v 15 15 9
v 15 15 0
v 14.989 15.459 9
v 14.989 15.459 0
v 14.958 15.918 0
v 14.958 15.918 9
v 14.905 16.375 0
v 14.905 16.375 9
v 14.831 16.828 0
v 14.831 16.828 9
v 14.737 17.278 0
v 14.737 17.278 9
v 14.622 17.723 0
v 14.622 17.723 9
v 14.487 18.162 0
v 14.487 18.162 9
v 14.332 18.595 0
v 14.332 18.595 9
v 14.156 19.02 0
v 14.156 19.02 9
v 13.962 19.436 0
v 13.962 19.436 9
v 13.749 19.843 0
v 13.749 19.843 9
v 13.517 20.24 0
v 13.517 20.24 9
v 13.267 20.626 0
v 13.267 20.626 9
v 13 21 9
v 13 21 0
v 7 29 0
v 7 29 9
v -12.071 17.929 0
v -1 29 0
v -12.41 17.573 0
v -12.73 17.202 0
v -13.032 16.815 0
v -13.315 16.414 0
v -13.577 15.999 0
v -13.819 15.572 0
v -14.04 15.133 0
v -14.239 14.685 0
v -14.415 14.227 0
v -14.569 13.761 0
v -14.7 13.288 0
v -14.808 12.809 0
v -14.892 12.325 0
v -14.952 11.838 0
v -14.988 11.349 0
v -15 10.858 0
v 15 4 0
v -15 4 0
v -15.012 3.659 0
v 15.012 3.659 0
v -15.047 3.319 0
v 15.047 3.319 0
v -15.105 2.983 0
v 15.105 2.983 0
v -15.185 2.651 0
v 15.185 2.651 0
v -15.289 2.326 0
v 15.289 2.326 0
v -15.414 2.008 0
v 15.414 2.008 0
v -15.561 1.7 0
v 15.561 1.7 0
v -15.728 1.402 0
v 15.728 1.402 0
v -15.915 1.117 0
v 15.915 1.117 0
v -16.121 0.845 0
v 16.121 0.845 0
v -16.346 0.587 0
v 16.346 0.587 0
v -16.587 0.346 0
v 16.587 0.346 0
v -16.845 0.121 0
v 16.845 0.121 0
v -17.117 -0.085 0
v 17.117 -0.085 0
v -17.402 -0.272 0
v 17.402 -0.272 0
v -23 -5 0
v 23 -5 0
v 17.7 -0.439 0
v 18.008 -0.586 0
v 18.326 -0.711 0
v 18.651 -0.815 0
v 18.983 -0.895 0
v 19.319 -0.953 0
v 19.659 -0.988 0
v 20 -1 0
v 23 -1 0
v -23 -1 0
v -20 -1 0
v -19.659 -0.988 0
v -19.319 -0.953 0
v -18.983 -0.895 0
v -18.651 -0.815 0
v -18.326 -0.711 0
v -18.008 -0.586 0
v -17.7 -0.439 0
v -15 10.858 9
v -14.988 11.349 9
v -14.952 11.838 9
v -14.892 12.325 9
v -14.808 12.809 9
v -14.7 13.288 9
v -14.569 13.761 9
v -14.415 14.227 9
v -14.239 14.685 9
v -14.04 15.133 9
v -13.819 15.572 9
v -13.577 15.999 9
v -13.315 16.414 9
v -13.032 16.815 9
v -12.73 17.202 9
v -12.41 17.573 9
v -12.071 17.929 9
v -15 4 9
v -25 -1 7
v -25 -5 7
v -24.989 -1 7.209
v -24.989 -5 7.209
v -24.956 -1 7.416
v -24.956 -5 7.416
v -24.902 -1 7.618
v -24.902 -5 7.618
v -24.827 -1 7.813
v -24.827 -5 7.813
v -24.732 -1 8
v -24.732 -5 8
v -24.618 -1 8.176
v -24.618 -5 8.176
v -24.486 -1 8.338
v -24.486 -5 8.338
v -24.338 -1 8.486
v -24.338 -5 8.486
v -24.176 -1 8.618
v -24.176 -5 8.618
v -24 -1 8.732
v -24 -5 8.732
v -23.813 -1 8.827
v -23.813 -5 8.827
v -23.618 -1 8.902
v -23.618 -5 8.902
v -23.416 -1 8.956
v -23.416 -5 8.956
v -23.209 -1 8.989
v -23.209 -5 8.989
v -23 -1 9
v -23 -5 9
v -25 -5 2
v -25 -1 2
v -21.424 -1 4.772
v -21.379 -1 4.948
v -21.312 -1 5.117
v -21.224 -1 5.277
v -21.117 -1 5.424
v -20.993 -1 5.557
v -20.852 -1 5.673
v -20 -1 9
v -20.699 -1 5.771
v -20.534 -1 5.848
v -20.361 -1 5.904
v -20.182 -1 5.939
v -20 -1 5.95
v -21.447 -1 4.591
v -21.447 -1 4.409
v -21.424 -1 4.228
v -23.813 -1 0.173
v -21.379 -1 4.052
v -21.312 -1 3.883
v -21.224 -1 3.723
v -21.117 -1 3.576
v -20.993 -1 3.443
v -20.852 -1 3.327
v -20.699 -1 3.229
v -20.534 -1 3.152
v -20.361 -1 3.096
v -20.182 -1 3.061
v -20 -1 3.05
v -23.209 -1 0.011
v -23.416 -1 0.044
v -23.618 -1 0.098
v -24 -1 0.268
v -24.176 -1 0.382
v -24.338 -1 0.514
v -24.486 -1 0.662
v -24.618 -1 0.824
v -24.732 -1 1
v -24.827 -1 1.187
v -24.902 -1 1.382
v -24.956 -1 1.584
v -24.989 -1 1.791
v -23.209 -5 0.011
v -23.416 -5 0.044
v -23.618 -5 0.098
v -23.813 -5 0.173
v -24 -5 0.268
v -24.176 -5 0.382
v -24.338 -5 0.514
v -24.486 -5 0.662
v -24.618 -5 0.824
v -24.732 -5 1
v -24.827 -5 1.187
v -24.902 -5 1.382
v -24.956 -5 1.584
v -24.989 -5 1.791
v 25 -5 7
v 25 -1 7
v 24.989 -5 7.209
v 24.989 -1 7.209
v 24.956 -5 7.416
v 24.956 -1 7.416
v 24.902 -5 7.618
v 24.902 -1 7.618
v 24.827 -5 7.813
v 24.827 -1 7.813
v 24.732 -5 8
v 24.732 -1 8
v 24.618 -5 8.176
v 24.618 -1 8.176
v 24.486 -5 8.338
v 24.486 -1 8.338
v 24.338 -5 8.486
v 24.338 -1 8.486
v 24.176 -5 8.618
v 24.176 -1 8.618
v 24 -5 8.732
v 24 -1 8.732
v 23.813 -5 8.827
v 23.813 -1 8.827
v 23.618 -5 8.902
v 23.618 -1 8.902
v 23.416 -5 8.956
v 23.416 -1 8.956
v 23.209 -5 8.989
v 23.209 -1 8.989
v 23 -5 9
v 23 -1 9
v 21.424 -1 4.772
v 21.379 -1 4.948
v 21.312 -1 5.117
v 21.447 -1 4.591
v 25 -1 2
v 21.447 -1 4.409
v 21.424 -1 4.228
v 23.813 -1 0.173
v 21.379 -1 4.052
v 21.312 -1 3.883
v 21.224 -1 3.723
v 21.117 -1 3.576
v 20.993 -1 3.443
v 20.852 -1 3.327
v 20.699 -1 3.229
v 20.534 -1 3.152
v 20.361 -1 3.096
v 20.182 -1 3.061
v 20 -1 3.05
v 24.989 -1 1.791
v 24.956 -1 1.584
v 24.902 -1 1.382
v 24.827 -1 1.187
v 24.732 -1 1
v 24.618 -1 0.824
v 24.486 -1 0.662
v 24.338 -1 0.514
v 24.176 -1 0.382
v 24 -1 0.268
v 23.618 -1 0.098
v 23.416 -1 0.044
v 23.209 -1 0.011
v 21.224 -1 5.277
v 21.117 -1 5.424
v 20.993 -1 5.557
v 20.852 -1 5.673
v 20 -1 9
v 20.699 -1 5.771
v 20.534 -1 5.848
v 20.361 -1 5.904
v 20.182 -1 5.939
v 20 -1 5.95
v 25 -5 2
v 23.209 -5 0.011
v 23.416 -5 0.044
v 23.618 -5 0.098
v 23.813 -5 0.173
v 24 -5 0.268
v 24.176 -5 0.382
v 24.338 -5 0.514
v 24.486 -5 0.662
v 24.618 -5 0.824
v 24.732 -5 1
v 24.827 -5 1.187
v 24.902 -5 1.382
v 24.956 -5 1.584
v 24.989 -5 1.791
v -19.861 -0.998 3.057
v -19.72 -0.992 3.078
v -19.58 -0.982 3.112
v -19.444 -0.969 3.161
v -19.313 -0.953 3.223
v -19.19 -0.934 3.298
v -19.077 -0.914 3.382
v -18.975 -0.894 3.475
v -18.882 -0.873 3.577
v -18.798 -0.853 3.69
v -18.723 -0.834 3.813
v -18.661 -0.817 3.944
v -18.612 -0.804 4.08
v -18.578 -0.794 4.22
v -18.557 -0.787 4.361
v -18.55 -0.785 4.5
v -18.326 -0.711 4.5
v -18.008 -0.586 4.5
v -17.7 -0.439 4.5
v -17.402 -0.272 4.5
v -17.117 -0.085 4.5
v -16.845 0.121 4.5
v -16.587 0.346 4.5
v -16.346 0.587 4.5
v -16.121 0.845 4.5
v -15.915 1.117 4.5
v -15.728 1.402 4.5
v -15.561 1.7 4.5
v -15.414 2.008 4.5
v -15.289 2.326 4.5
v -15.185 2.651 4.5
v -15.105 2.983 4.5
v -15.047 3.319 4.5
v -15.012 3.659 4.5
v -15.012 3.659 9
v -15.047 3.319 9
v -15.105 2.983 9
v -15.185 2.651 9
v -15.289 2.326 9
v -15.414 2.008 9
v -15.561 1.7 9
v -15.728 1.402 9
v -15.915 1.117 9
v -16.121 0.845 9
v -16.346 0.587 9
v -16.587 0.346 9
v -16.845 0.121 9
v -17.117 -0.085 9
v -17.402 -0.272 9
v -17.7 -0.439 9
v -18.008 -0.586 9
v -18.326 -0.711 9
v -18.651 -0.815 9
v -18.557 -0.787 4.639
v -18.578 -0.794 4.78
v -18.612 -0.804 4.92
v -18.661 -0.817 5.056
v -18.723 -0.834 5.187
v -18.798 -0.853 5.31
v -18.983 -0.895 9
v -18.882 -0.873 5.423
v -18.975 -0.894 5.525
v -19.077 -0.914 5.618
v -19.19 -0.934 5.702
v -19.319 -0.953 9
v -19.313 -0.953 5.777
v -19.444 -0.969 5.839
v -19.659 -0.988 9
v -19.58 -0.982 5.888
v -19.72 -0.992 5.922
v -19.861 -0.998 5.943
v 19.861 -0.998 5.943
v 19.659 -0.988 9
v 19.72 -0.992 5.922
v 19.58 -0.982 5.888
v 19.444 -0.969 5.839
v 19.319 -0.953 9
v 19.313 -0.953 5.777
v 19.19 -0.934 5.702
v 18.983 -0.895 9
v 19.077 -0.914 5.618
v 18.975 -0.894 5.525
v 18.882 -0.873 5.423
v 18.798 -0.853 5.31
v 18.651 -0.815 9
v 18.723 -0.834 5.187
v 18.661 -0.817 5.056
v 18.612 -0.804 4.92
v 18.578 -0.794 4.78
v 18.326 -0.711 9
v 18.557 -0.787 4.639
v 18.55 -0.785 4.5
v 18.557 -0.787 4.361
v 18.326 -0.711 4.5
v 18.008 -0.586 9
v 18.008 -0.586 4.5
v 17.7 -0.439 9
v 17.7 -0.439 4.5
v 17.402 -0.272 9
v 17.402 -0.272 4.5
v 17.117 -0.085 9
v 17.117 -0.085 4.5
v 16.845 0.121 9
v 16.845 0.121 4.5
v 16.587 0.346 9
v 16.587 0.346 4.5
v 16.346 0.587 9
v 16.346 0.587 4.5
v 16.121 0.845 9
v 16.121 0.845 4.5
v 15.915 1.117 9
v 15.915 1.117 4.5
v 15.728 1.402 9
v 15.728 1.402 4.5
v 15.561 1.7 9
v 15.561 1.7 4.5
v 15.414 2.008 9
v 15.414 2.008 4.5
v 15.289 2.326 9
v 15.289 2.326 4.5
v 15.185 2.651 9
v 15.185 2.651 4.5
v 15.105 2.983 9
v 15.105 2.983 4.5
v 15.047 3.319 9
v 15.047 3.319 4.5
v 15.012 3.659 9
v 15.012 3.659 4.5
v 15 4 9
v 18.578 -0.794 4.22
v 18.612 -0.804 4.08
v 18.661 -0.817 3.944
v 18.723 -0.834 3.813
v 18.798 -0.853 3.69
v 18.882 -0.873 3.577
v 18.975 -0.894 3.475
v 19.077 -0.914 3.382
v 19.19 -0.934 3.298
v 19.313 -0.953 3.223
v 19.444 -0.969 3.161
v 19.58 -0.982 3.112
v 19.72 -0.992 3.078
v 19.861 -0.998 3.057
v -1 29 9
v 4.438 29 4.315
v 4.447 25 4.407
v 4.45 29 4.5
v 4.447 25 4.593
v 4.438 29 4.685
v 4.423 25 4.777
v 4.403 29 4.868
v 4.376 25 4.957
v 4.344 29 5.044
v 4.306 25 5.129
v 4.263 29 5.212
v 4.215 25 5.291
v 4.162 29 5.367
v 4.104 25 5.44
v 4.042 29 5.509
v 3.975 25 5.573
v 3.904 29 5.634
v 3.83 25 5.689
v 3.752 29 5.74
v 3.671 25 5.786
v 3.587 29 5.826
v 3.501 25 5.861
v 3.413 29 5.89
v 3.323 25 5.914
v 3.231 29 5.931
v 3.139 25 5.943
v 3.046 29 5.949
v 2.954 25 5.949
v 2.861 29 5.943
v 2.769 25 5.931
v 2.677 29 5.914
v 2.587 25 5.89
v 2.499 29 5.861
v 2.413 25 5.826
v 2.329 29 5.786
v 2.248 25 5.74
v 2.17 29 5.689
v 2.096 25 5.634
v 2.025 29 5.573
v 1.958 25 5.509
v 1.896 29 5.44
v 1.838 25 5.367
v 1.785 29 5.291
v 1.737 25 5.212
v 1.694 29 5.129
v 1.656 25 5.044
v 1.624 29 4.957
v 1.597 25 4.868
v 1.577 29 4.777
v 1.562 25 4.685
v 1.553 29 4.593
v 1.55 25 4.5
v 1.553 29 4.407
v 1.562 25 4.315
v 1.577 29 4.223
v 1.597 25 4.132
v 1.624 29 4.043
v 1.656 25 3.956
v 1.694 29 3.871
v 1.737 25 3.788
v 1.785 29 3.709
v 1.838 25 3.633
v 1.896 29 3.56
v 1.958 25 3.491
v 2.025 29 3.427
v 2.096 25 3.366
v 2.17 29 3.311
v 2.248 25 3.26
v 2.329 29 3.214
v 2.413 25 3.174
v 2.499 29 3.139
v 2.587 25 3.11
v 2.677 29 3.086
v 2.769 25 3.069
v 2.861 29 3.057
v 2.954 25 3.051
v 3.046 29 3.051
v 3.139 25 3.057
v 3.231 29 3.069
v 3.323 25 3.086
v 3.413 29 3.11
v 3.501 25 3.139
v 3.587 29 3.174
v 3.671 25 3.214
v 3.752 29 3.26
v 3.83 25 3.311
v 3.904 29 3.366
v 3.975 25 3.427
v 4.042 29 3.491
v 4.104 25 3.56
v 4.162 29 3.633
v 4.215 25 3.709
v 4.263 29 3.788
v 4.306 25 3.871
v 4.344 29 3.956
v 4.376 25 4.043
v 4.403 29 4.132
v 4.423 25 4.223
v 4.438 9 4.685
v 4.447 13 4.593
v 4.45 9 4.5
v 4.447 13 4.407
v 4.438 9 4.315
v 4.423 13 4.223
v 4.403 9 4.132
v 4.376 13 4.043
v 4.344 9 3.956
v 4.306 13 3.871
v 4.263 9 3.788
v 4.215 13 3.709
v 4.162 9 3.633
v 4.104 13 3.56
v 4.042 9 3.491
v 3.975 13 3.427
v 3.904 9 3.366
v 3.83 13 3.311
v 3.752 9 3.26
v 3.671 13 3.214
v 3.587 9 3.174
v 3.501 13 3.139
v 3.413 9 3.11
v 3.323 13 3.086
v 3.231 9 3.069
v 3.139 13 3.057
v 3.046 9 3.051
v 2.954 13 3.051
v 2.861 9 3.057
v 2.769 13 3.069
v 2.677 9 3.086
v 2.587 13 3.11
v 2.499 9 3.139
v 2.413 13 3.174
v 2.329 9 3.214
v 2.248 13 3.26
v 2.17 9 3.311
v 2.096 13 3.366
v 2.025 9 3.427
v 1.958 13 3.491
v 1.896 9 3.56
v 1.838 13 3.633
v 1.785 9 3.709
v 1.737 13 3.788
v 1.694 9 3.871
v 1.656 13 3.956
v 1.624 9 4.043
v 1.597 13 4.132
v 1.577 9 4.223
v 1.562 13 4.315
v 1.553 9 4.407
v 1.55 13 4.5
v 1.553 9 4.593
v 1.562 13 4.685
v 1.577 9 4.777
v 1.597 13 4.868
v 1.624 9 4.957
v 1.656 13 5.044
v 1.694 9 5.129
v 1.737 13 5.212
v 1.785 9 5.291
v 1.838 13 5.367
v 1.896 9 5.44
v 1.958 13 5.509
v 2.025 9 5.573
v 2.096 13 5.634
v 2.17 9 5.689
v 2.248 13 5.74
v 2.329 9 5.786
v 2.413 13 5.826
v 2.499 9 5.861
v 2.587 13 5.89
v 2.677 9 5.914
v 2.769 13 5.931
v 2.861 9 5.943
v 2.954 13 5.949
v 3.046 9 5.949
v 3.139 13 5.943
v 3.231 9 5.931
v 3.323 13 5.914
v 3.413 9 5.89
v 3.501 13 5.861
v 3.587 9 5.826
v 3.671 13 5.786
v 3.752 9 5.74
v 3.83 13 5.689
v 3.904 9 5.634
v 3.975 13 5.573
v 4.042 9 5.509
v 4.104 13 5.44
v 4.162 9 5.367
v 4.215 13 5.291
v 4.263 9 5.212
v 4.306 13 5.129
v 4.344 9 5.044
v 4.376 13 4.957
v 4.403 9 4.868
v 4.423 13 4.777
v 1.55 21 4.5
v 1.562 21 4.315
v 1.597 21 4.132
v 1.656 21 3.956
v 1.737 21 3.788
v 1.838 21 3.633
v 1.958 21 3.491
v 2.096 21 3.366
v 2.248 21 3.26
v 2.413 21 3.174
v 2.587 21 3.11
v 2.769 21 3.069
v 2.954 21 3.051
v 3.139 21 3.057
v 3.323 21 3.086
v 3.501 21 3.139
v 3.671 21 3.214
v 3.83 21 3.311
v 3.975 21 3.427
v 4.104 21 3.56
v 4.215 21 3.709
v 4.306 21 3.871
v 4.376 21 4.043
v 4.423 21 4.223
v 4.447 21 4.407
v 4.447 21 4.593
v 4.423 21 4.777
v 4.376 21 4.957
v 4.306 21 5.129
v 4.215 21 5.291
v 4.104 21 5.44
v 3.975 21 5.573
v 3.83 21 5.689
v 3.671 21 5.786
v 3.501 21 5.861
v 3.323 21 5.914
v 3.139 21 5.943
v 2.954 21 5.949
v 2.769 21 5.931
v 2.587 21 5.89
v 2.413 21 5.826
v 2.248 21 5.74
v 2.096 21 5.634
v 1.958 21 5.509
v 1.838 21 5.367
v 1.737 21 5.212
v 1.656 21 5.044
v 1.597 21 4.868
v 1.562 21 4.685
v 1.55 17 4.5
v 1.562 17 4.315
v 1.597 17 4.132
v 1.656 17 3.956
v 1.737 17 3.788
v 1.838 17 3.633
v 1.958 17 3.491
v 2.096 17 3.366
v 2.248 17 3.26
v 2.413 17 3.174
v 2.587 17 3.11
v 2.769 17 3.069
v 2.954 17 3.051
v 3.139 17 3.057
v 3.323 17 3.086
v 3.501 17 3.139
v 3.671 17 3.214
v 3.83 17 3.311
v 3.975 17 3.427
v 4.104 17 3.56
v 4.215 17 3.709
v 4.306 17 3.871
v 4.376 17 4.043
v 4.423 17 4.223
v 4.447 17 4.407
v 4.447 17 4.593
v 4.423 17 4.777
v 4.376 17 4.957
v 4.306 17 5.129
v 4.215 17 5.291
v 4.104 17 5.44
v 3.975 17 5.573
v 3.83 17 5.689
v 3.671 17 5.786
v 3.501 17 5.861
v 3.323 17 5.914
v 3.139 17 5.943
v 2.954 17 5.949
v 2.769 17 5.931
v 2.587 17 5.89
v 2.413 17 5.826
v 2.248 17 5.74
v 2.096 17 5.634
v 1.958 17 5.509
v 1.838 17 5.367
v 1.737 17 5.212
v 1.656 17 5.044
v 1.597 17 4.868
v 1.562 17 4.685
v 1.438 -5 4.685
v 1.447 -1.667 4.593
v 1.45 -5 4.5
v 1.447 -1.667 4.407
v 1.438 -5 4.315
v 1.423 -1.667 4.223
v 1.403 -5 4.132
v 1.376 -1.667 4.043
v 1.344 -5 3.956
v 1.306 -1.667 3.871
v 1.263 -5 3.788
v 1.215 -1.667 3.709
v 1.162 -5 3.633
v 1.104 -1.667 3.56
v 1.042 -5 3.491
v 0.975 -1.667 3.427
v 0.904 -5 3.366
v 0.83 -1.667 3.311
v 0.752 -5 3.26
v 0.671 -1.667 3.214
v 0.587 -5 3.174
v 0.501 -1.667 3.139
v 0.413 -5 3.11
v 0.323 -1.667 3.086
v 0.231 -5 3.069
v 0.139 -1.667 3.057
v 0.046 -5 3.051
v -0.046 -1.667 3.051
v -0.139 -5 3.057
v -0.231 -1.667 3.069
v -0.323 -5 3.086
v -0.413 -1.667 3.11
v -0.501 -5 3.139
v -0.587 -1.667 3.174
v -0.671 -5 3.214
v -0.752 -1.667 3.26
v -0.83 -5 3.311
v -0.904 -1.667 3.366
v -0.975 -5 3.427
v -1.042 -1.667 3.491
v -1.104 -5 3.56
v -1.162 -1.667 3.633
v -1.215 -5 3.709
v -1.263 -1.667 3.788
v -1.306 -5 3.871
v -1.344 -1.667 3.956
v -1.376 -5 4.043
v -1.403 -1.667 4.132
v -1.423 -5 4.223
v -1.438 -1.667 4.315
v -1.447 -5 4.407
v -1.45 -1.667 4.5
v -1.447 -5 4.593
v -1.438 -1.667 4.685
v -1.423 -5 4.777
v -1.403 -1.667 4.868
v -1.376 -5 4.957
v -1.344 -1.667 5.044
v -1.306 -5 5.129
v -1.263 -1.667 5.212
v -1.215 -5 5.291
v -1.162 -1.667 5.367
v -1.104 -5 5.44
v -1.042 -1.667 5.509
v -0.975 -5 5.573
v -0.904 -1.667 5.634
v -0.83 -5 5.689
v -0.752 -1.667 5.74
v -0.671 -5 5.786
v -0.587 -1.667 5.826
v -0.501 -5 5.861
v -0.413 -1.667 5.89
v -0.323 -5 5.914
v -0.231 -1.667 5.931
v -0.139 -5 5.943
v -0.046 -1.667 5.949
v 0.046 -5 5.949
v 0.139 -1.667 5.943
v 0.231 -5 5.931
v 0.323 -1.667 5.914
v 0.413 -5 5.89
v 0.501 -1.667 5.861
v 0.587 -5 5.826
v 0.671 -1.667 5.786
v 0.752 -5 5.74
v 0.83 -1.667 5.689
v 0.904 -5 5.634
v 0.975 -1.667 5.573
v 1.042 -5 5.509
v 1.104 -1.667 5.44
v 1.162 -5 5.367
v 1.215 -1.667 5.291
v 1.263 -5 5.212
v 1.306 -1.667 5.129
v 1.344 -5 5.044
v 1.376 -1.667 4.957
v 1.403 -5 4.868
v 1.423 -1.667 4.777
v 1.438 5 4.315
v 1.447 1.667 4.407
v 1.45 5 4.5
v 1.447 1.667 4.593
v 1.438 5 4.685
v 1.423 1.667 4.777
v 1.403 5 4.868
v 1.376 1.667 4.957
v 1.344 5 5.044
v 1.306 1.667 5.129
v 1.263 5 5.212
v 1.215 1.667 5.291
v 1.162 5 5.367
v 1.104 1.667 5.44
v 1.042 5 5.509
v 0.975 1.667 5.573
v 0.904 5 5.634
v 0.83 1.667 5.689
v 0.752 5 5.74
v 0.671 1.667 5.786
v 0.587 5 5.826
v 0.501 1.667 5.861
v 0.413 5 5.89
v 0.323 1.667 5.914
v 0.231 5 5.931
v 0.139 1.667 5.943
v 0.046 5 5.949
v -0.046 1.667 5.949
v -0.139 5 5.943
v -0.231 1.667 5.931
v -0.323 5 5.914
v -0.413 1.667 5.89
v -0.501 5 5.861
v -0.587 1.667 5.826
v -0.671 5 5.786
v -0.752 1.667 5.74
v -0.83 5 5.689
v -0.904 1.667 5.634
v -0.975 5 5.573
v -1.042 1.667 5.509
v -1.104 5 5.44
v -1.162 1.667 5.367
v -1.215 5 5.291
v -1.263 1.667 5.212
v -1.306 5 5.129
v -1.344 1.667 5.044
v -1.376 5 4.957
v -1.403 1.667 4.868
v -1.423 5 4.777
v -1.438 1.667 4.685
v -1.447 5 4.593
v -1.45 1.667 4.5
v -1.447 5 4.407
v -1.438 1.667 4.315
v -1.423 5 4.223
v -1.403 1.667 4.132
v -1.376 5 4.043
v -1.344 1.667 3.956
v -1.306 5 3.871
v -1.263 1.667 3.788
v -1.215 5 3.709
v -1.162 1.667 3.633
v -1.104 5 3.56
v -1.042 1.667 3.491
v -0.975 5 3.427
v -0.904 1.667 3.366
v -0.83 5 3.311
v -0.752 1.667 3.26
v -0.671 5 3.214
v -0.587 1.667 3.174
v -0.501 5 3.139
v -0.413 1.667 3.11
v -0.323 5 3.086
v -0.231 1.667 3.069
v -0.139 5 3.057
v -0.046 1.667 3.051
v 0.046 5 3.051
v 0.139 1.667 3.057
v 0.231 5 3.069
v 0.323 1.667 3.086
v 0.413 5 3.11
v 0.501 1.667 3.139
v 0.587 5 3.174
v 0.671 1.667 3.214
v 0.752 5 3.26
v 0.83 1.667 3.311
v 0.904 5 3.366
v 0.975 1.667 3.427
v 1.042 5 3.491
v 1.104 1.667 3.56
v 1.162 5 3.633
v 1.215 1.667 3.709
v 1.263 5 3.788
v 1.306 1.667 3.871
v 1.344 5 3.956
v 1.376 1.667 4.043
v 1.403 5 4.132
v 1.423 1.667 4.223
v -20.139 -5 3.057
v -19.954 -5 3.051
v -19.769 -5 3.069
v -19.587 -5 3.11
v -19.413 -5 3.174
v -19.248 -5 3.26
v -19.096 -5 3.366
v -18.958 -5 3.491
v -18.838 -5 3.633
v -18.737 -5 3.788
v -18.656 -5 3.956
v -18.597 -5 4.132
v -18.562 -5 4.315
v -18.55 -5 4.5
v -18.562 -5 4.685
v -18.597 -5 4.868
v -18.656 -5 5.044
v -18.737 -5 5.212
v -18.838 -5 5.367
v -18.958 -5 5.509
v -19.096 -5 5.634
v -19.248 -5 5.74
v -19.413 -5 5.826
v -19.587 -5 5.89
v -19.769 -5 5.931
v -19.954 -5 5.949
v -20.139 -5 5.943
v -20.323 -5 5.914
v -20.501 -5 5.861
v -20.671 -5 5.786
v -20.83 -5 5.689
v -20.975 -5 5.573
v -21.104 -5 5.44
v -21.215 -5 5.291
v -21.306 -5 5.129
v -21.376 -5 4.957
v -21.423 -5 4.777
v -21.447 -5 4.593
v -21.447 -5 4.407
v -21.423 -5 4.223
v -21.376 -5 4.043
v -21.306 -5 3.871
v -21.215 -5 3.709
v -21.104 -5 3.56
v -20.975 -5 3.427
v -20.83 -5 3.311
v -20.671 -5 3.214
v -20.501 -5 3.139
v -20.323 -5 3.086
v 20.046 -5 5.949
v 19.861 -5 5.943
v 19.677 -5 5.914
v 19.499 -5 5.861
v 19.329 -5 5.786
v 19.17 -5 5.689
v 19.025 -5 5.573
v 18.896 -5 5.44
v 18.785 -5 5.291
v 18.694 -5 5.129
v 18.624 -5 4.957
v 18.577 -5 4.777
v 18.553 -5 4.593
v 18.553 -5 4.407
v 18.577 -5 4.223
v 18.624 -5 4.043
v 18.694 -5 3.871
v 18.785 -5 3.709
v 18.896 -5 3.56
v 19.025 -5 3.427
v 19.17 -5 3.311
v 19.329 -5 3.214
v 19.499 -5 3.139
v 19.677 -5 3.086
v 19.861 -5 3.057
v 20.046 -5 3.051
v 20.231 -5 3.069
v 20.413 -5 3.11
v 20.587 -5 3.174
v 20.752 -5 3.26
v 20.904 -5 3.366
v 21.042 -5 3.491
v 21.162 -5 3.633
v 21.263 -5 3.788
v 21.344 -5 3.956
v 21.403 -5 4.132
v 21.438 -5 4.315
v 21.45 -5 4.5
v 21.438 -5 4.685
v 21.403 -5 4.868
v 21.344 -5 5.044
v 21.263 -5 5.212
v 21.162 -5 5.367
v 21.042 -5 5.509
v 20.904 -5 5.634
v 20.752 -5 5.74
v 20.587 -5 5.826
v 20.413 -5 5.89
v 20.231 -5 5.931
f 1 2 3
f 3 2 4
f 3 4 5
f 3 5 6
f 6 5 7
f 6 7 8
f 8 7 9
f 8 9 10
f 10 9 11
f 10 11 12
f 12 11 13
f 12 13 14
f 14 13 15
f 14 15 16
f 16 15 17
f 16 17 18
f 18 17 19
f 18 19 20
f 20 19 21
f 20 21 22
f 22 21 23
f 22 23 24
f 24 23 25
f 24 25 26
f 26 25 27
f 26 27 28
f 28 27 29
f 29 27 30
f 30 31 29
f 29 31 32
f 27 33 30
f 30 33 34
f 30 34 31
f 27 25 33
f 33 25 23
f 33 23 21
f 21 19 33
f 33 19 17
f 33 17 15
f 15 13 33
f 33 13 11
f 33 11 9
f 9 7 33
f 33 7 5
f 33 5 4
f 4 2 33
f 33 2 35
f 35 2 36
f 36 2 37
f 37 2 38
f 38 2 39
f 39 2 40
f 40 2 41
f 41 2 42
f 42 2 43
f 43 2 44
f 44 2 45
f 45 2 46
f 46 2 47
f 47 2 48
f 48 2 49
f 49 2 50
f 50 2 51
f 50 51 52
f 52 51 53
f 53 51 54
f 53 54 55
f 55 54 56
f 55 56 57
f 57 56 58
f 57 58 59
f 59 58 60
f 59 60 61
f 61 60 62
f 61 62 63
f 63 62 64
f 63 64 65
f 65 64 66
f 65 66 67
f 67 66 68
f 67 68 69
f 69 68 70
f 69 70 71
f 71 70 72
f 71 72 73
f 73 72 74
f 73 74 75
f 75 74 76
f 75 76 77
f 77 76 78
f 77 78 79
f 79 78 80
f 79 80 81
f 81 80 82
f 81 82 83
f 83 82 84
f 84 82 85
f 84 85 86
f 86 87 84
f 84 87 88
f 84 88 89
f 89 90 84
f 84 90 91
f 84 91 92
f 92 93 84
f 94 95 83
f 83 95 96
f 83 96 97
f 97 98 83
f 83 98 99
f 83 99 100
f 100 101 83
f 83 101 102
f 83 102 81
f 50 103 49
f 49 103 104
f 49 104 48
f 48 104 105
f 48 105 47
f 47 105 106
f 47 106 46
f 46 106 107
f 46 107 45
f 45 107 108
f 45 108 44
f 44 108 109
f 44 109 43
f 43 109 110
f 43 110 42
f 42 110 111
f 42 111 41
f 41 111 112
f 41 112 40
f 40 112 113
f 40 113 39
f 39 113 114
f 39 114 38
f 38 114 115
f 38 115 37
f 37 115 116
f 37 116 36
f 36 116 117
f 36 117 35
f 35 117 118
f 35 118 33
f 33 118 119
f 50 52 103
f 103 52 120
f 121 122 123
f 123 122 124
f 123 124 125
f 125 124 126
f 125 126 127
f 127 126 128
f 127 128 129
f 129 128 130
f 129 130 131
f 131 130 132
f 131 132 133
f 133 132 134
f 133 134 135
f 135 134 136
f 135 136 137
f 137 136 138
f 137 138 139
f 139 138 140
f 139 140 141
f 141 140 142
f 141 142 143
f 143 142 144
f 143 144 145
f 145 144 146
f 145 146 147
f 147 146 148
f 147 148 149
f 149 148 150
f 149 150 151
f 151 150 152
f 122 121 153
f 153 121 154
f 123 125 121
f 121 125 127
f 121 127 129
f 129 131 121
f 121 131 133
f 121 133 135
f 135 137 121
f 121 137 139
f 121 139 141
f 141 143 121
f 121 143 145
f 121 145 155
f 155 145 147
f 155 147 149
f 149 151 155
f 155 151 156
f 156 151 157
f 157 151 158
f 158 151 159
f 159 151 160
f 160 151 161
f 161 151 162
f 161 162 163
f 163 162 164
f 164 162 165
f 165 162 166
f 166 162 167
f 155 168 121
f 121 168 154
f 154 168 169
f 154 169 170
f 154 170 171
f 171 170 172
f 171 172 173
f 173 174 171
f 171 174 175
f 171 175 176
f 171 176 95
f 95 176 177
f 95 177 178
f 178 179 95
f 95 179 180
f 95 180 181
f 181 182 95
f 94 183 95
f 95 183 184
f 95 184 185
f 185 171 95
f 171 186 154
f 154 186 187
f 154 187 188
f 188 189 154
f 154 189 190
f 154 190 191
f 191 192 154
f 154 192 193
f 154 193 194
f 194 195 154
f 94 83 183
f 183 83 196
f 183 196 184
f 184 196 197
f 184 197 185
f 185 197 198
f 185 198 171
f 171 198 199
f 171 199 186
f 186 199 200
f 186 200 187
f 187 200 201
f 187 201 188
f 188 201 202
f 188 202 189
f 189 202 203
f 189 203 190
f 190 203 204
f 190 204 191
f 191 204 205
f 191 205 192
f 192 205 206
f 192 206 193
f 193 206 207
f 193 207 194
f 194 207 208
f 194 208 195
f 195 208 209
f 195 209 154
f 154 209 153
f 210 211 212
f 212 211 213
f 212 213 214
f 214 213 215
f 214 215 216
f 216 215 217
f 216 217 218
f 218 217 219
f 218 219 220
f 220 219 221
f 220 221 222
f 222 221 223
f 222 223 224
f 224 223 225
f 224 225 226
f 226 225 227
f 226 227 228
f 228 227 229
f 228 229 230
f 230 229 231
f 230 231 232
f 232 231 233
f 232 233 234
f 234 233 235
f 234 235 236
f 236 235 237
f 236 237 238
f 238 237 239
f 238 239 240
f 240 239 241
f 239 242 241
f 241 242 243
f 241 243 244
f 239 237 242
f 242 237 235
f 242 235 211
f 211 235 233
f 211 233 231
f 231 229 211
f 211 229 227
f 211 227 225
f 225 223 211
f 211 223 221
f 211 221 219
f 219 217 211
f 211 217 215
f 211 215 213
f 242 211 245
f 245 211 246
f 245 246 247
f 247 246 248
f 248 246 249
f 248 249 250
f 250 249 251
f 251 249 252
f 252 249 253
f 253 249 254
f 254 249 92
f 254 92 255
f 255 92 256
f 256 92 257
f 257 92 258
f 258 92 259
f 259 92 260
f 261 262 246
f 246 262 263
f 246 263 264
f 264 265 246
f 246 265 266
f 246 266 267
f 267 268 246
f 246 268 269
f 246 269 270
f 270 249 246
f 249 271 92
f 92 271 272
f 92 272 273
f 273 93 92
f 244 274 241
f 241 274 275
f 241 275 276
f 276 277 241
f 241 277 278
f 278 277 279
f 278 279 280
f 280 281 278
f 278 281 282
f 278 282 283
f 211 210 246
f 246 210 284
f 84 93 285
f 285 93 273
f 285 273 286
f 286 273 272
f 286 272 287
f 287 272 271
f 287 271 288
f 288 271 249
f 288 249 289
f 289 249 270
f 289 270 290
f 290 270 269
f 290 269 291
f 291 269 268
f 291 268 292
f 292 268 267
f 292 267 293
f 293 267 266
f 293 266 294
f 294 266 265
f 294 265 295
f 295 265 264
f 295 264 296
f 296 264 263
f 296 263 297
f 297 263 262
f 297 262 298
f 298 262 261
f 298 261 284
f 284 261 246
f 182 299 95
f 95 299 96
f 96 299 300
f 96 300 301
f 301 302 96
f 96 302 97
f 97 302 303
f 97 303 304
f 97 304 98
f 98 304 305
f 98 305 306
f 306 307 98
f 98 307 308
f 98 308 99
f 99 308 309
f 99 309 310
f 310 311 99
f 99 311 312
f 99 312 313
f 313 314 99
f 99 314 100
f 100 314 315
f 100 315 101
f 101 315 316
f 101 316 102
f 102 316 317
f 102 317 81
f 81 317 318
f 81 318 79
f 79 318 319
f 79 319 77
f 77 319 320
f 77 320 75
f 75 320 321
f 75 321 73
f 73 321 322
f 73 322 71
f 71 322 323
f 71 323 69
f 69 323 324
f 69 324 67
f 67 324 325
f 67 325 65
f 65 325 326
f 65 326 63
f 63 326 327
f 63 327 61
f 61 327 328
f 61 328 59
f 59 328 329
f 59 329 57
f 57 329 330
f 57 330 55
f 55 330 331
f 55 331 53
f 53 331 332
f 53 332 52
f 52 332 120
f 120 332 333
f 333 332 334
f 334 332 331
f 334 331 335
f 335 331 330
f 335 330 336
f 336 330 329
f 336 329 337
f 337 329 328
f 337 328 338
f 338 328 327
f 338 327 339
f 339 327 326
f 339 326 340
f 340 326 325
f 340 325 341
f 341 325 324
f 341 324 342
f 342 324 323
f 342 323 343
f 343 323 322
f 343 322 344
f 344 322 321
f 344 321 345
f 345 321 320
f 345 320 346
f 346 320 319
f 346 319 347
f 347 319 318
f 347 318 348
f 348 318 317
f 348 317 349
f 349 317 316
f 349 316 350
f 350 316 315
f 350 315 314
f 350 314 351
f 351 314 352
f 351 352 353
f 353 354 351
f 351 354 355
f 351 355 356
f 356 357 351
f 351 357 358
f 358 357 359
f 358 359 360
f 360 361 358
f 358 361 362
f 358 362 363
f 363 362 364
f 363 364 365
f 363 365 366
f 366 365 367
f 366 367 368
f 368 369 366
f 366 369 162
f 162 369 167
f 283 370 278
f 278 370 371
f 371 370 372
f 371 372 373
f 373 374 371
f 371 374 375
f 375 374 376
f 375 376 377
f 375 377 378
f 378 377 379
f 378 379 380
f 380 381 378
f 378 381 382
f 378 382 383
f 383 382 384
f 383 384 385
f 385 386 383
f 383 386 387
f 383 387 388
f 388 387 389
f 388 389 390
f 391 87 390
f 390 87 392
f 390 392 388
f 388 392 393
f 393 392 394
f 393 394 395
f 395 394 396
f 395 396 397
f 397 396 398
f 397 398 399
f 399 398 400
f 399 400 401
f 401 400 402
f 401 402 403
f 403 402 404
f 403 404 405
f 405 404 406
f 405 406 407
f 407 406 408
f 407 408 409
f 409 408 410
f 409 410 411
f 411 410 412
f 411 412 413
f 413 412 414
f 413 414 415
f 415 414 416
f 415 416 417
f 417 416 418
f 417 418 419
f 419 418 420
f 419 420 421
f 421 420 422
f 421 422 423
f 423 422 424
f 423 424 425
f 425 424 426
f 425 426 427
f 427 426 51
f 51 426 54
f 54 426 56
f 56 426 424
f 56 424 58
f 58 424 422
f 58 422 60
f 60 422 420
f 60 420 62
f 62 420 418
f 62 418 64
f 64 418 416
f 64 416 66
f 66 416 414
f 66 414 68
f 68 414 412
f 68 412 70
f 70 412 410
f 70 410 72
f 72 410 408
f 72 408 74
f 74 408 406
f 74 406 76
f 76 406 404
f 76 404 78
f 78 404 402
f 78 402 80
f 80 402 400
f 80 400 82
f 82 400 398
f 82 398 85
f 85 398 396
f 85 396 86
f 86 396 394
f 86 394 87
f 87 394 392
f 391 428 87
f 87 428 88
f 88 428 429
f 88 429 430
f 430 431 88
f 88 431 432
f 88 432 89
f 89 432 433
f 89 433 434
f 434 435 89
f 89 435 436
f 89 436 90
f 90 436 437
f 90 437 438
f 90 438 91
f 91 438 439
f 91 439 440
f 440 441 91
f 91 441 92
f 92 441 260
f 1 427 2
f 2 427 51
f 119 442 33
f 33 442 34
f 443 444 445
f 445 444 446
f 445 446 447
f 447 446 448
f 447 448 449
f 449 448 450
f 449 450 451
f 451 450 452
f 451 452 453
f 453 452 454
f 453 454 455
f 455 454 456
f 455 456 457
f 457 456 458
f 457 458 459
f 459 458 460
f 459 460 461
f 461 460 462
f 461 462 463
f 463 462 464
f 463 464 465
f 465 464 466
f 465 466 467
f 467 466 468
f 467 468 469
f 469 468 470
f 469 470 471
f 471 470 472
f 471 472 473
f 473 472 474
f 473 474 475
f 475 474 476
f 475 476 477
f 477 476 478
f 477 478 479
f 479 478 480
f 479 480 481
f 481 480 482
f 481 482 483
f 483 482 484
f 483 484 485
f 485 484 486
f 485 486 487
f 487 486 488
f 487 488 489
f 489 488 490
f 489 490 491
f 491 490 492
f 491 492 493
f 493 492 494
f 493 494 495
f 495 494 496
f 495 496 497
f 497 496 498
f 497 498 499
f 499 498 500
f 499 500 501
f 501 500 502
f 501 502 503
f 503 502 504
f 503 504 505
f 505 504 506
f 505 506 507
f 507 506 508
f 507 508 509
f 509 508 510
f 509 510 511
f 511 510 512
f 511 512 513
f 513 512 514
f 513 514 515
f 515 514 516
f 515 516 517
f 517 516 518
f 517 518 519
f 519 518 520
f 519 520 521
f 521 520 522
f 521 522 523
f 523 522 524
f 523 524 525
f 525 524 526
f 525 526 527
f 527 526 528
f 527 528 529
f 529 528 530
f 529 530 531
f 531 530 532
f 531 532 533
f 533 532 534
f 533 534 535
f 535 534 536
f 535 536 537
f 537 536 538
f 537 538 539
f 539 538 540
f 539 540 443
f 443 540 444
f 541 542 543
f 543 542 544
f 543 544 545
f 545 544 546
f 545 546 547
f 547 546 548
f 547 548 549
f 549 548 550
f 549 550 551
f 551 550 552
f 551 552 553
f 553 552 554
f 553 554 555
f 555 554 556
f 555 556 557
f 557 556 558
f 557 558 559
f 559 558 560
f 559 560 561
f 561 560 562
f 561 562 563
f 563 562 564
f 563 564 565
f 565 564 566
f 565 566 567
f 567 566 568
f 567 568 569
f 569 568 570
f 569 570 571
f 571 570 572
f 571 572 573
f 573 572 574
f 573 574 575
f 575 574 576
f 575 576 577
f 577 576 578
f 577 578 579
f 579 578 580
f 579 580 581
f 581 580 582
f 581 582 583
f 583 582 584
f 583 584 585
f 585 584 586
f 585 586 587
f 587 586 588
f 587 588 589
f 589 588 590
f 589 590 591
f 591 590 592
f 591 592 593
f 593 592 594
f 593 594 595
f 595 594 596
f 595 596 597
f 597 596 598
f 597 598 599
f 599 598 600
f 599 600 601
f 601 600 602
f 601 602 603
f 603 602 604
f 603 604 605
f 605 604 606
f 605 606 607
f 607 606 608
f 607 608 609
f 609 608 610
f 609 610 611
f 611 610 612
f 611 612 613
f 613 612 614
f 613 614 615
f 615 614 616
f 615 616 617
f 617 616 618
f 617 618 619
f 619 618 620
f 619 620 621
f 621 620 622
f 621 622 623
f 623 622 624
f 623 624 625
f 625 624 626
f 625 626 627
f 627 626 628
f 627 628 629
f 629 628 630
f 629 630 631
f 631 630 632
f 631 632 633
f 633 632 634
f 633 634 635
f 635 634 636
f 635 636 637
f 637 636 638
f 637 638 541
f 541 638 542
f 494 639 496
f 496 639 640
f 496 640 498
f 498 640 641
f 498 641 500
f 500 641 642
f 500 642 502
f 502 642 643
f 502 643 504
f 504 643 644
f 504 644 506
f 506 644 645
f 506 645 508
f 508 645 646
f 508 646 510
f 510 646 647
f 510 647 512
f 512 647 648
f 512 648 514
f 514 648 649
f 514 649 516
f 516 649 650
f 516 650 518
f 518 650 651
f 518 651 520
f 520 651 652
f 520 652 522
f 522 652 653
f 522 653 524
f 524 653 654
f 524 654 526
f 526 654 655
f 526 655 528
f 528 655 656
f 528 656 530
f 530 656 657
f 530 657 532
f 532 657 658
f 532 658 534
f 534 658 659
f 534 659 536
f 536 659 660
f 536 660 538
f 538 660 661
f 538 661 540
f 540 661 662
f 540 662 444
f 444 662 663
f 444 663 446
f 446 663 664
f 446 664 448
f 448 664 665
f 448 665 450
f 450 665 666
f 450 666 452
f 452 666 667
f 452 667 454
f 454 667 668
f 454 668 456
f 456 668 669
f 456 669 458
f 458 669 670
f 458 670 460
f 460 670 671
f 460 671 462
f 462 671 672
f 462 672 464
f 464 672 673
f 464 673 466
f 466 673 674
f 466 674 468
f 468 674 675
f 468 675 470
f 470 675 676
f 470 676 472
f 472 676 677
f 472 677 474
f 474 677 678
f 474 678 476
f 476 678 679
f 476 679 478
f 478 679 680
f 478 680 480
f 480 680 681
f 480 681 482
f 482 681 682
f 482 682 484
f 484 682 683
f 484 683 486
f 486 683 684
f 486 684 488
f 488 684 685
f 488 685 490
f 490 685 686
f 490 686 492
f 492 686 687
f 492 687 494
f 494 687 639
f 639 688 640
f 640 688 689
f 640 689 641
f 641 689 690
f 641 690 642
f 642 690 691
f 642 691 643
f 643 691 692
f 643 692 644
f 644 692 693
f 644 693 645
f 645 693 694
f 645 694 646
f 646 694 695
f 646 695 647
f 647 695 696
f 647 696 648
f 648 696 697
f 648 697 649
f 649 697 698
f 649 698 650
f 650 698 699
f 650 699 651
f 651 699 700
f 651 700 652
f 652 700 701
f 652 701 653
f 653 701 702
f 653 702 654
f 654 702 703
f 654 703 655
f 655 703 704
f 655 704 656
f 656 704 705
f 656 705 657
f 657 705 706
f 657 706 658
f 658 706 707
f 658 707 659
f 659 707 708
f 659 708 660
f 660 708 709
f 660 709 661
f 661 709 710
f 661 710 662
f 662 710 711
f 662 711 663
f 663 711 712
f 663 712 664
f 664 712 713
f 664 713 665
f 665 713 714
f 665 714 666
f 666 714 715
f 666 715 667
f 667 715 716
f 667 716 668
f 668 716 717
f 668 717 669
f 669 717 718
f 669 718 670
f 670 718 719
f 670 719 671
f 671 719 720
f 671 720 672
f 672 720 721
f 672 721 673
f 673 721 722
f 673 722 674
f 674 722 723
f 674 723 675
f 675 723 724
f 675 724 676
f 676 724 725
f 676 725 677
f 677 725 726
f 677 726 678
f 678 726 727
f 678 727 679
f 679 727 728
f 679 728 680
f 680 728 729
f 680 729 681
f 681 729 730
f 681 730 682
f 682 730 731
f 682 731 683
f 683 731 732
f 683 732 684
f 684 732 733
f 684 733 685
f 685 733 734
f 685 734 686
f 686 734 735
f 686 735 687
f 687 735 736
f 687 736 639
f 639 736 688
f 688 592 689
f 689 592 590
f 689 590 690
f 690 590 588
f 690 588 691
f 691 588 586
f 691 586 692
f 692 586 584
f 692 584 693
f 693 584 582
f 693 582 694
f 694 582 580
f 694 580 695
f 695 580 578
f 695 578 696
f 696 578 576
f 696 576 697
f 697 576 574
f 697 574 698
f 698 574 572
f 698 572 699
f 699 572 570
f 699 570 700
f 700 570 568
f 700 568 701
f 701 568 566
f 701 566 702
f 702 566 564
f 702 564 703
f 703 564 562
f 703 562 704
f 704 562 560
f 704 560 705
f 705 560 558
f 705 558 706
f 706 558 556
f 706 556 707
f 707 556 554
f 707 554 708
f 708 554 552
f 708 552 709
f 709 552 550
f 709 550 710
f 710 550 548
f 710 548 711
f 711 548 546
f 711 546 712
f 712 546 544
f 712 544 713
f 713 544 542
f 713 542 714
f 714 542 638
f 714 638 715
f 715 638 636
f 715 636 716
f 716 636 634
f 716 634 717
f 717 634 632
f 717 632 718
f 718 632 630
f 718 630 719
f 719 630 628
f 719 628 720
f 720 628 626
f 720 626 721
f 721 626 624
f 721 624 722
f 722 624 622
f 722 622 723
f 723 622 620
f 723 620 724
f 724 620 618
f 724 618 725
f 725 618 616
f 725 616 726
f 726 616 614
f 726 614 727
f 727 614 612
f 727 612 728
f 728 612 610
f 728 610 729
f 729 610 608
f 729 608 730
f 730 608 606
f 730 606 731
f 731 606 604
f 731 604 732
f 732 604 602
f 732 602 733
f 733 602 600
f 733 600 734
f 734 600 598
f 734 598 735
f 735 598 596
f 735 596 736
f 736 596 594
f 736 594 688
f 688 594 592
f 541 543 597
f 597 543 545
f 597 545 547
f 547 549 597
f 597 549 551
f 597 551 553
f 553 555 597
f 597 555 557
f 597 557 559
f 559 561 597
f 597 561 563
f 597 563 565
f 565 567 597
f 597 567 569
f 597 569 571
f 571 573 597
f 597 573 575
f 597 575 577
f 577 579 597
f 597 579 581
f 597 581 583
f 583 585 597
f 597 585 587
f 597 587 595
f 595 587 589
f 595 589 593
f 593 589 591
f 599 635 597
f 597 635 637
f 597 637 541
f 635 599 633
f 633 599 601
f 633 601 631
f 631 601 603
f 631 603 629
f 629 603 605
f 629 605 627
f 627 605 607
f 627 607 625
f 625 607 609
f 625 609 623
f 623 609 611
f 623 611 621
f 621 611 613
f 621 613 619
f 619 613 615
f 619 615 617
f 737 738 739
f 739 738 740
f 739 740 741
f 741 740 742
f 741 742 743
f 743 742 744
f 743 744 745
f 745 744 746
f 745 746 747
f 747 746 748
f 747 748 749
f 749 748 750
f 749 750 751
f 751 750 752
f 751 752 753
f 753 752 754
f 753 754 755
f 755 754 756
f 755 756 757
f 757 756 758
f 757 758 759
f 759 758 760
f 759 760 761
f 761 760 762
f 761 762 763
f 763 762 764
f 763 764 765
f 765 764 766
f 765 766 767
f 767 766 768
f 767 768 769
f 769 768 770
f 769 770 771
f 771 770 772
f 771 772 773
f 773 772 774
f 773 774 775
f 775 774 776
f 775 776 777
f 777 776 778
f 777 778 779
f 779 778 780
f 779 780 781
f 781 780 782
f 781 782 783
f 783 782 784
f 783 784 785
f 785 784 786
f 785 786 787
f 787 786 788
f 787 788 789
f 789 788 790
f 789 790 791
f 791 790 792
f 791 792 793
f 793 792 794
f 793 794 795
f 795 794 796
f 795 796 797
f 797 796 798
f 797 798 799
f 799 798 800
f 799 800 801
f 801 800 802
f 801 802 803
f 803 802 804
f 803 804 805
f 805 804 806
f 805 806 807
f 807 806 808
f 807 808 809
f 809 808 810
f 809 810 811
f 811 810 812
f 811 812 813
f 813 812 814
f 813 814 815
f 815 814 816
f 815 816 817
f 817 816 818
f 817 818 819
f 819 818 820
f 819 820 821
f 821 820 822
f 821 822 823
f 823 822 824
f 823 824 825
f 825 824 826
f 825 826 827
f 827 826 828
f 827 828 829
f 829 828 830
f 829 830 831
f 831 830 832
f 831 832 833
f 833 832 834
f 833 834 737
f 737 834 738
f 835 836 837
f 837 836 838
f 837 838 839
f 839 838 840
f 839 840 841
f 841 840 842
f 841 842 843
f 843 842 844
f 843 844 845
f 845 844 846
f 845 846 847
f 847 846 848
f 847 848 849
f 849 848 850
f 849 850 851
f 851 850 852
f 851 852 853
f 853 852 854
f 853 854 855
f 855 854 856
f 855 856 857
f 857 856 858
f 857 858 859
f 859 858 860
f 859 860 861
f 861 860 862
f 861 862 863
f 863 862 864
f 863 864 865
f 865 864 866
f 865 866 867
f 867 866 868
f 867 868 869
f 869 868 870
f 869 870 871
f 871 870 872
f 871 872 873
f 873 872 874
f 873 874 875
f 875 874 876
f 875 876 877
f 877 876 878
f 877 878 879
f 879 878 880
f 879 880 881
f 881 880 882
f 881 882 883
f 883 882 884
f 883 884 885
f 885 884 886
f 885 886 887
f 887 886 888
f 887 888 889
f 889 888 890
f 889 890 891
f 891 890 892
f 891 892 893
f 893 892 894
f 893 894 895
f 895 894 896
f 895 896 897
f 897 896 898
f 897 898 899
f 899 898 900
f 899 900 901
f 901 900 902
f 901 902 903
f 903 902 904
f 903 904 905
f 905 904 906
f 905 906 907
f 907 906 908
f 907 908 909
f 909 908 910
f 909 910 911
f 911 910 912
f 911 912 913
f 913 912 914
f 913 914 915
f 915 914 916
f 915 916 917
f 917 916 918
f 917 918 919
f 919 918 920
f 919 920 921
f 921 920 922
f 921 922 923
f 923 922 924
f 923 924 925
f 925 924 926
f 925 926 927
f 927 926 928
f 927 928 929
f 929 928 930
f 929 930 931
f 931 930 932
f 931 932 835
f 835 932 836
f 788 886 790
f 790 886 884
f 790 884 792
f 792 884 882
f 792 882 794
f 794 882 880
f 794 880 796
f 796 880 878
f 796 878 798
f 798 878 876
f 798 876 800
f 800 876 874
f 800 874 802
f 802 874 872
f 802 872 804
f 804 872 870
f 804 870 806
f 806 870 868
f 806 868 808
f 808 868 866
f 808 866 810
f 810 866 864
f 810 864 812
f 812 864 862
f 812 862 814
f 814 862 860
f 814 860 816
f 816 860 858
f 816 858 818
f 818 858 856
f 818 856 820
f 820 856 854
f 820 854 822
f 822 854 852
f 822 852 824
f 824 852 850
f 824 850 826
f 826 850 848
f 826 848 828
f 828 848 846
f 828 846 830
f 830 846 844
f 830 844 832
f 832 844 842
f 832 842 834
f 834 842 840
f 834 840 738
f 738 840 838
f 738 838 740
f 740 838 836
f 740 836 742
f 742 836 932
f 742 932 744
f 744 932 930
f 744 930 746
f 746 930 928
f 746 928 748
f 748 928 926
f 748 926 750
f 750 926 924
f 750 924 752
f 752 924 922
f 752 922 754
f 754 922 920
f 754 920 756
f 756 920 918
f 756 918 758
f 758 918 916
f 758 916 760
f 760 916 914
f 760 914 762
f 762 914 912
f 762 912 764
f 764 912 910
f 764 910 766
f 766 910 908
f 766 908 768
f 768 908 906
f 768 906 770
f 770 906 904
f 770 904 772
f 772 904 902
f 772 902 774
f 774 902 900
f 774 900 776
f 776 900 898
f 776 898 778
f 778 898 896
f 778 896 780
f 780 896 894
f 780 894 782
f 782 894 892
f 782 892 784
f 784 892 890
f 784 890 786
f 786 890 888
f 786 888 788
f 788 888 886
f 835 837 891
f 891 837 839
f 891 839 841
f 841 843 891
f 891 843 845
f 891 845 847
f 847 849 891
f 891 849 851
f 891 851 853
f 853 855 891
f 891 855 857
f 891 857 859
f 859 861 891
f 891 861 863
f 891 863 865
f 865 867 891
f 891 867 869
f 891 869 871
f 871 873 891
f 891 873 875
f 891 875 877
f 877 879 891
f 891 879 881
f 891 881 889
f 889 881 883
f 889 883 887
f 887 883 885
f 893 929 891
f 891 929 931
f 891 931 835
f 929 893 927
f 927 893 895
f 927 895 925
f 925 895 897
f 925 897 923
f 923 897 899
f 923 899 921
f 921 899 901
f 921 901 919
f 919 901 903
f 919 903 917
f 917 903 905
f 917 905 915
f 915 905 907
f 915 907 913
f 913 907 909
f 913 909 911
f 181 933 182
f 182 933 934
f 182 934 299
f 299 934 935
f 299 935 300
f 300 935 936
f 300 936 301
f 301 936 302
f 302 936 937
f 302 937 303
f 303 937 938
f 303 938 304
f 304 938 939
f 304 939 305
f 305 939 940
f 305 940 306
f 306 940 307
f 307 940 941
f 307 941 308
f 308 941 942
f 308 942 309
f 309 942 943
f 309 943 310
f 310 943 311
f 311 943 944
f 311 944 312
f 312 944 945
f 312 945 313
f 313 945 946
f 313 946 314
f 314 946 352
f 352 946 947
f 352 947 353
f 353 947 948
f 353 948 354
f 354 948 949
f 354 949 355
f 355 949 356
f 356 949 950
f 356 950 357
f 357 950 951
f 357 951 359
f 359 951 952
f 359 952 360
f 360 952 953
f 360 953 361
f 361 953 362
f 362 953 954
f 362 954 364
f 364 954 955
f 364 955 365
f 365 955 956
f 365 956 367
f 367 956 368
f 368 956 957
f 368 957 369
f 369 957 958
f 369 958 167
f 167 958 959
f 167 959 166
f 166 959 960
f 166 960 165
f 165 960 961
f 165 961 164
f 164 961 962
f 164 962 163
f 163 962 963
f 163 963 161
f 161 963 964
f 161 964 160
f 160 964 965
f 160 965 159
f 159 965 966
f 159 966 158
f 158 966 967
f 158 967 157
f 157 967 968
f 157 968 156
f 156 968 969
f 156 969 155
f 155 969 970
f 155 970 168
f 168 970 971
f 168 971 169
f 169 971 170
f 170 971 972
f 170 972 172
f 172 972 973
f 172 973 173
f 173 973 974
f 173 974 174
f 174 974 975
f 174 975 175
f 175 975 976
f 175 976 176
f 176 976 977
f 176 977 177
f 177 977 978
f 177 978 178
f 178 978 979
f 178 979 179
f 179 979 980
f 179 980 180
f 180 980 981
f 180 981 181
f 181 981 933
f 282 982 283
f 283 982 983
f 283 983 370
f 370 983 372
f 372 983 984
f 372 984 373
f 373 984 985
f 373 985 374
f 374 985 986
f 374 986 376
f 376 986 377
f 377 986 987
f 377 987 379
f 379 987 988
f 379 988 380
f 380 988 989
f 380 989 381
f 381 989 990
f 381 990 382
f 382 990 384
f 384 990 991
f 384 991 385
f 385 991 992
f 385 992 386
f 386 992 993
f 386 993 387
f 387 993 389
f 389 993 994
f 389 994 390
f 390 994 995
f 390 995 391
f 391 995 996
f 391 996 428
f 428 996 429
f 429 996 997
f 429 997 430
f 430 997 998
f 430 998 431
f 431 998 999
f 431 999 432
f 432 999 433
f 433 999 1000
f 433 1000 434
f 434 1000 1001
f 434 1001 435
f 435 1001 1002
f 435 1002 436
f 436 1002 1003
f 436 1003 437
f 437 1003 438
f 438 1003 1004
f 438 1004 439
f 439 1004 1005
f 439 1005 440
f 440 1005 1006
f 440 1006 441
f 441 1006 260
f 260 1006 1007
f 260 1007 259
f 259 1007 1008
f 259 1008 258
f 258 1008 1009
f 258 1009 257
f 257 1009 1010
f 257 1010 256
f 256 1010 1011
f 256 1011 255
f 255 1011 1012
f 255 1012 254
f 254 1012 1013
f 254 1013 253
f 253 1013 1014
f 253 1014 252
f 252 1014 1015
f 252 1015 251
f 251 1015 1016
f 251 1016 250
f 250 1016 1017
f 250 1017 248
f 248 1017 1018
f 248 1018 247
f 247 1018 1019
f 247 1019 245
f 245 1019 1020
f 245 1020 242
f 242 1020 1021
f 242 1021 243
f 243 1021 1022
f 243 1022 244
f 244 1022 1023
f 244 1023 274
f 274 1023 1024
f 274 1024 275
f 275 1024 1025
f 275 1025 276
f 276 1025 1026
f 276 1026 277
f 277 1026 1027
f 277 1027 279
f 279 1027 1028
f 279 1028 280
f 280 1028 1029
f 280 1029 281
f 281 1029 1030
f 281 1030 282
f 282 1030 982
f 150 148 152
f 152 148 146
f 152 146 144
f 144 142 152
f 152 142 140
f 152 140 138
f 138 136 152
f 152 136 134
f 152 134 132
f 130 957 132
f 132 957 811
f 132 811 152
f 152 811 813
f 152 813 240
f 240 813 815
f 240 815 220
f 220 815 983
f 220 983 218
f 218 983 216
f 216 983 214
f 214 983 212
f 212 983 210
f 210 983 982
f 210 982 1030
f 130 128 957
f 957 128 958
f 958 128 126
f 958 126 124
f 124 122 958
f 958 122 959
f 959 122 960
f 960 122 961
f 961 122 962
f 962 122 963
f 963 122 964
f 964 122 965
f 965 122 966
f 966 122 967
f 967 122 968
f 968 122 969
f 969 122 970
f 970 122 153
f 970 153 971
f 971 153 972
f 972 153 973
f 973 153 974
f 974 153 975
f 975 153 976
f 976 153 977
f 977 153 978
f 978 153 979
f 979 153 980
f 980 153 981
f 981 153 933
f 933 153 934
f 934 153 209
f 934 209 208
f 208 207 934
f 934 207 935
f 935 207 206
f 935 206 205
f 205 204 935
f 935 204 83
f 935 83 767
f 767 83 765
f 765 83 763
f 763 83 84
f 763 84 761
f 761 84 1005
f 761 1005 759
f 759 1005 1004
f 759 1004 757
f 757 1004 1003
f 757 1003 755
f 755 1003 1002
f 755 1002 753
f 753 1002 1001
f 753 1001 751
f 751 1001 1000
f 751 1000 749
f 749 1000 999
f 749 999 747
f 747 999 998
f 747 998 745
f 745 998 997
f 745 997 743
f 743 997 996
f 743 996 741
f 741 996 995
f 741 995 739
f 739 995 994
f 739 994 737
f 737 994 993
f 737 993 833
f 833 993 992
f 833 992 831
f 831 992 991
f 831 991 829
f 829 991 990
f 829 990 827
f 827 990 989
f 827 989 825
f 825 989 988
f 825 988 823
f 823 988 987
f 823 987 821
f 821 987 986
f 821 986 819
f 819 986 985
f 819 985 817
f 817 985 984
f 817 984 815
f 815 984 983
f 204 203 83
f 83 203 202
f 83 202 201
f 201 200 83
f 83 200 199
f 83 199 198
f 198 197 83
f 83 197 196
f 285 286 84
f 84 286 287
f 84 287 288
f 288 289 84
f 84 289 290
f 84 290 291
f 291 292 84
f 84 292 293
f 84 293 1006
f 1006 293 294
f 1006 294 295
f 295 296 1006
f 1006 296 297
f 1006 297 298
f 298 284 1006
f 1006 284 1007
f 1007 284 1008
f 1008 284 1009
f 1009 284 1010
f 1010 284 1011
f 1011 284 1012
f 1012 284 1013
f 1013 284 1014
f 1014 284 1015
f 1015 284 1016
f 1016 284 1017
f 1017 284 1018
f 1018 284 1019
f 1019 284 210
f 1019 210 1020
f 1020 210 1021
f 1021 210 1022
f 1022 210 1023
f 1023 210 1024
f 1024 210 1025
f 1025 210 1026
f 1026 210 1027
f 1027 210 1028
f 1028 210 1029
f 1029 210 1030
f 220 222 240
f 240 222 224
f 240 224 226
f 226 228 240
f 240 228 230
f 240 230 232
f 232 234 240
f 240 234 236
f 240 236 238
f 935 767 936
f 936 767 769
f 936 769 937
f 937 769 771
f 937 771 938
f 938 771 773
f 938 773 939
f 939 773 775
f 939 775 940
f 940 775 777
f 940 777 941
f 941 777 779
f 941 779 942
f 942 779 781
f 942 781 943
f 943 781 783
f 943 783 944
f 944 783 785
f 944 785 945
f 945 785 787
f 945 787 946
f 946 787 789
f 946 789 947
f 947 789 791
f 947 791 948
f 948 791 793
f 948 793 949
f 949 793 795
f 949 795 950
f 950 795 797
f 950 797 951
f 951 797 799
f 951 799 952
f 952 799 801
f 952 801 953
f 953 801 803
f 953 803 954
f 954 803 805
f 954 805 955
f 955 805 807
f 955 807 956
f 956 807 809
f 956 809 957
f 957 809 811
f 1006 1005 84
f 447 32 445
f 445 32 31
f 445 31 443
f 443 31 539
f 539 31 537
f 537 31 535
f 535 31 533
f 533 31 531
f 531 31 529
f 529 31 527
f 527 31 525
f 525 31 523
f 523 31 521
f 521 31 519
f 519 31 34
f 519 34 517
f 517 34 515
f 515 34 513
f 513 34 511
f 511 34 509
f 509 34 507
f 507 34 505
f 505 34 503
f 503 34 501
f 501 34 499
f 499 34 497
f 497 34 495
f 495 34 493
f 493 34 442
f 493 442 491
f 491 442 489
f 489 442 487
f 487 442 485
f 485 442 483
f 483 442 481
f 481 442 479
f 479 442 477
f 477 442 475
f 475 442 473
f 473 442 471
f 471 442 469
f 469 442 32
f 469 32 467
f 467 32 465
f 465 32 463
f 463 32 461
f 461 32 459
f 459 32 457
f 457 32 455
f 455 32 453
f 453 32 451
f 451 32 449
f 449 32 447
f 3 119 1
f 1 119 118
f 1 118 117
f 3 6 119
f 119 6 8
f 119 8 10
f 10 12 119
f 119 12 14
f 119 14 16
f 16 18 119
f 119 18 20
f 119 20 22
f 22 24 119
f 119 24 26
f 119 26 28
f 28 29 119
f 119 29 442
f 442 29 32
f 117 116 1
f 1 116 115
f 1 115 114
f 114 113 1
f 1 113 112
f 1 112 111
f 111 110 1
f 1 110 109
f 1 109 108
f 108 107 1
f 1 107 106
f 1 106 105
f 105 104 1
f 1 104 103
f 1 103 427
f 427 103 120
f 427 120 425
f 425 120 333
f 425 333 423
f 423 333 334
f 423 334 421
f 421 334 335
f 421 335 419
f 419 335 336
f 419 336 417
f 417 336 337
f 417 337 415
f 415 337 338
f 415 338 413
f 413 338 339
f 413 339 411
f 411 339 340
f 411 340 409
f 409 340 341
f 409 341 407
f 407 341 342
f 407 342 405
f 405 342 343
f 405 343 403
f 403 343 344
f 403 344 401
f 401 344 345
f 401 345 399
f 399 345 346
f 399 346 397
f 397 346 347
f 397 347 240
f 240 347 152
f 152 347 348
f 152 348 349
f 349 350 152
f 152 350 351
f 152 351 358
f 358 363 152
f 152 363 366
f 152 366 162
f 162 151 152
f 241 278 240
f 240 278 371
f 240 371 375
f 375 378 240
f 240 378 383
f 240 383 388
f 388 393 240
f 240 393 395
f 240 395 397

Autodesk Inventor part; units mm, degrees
ref_plane "YZ Plane" through (0, 0, 0) normal (1, 0, 0) x (0, 1, 0)
ref_plane "XZ Plane" through (0, 0, 0) normal (0, 1, 0) x (-1, 0, 0)
ref_plane "XY Plane" through (0, 0, 0) normal (0, 0, 1) x (1, 0, 0)
sketch "Sketch1" plane through (0, 0, 0) normal (0, 0, 1) x (1, 0, 0)
  line L0 (-25, -5) -> (25, -5)
  line L1 (25, -5) -> (25, 5)
  line L2 (25, 5) -> (-25, 5)
  line L3 (-25, 5) -> (-25, -5)
  line L4 (-25, -5) -> (25, 5) construction
  line L5 (25, -5) -> (-25, 5) construction
  line L6 (-25, 5) -> (-1, 29)
  line L7 (-1, 29) -> (7, 29)
  line L8 (7, 29) -> (25, 5)
  line L9 (3, 29) -> (3, 5) construction
  point P0 (0, 0)
  dimension "d0" = 28
  dimension "d1" = 50
  dimension "d2" = 34
  dimension "d3" = 8
  dimension "d4" = 10
extrude "Extrusion1" add sketch "Sketch1" along normal blind 9
sketch "Sketch2" plane through (-25, -5, 0) normal (0, -1, 0) x (1, 0, 0)
  line L0 (0, 0) -> (50, 0) projected
  line L1 (50, 0) -> (50, 9) projected
  line L2 (0, 9) -> (50, 9) projected
  line L3 (0, 0) -> (0, 9) projected
  point P0 (25, 0)
  point P1 (5, 4.5)
  point P2 (25, 4.5)
  point P3 (45, 4.5)
  point P4 (50, 4.5)
  dimension "d7" = 20
  dimension "d8" = 20
  dimension "d9" = 5
hole "Hole1" at (20, -5, 4.5) at (-20, -5, 4.5) at (0, -5, 4.5) direction (0, 1, 0) diameter 2.9 depth 10
sketch "Sketch3" plane through (-1, 29, 0) normal (0, 1, 0) x (1, 0, 0)
  line L0 (8, 0) -> (0, 0) projected
  line L1 (0, 0) -> (0, -9) projected
  line L2 (8, -9) -> (0, -9) projected
  line L3 (8, 0) -> (8, -9) projected
  point P0 (1, 0)
  point P1 (4, -4.5)
  point P2 (8, -4.5)
  point P3 (4, 0)
hole "Hole2" at (3, 29, 4.5) direction (0, -1, 0) diameter 2.9 depth 20
sketch "Sketch4" plane through (0, 0, 0) normal (0, 0, -1) x (-1, 0, 0)
  line L0 (-18.55, -5) -> (-21.45, -5) projected
  line L1 (-21.45, 5) -> (-18.55, 5) projected
  line L2 (-25, -5) -> (-25, 5) projected
  line L3 (-25, -1) -> (-15, -1)
  line L4 (-15, -1) -> (-15, 18.3333)
  line L5 (25, -5) -> (-25, -5) projected
  line L6 (-7, 29) -> (1, 29) projected
  line L7 (-25, 5) -> (-7, 29) projected
  line L8 (-25, -5) -> (-25, 5) projected
  line L9 (25, -5) -> (-25, -5) projected
  line L10 (25, 5) -> (25, -5) projected
  line L11 (1, 29) -> (25, 5) projected
  line L12 (21.45, 5) -> (21.45, -5) projected
  line L13 (18.55, 5) -> (18.55, -5) projected
  line L14 (-15, -1) -> (25, -1)
  line L15 (15, -1) -> (15, 15)
  point P0 (0, 0)
  dimension "d25" = 3.55
  dimension "d26" = 4
  dimension "d27" = 3.55
extrude "Extrusion2" cut sketch "Sketch4" against normal through all contours L14 L15 L11 L10 | L2 L7 L4 L3
fillet "Fillet2" radius 5 2 edges at (15, -1, 4.5) (-15, -1, 4.5)
fillet "Fillet3" radius 2 4 edges at (25, -3, 0) (25, -3, 9) (-25, -3, 0) (-25, -3, 9)
fillet "Fillet4" radius 10 2 edges at (-15, 15, 4.5) (15, 18.3333, 4.5)
equation "\"d8\" = d7"
equation "\"d27\" = d25"
properties part number "LeftLevelBlock" material "ABS Plastic"
